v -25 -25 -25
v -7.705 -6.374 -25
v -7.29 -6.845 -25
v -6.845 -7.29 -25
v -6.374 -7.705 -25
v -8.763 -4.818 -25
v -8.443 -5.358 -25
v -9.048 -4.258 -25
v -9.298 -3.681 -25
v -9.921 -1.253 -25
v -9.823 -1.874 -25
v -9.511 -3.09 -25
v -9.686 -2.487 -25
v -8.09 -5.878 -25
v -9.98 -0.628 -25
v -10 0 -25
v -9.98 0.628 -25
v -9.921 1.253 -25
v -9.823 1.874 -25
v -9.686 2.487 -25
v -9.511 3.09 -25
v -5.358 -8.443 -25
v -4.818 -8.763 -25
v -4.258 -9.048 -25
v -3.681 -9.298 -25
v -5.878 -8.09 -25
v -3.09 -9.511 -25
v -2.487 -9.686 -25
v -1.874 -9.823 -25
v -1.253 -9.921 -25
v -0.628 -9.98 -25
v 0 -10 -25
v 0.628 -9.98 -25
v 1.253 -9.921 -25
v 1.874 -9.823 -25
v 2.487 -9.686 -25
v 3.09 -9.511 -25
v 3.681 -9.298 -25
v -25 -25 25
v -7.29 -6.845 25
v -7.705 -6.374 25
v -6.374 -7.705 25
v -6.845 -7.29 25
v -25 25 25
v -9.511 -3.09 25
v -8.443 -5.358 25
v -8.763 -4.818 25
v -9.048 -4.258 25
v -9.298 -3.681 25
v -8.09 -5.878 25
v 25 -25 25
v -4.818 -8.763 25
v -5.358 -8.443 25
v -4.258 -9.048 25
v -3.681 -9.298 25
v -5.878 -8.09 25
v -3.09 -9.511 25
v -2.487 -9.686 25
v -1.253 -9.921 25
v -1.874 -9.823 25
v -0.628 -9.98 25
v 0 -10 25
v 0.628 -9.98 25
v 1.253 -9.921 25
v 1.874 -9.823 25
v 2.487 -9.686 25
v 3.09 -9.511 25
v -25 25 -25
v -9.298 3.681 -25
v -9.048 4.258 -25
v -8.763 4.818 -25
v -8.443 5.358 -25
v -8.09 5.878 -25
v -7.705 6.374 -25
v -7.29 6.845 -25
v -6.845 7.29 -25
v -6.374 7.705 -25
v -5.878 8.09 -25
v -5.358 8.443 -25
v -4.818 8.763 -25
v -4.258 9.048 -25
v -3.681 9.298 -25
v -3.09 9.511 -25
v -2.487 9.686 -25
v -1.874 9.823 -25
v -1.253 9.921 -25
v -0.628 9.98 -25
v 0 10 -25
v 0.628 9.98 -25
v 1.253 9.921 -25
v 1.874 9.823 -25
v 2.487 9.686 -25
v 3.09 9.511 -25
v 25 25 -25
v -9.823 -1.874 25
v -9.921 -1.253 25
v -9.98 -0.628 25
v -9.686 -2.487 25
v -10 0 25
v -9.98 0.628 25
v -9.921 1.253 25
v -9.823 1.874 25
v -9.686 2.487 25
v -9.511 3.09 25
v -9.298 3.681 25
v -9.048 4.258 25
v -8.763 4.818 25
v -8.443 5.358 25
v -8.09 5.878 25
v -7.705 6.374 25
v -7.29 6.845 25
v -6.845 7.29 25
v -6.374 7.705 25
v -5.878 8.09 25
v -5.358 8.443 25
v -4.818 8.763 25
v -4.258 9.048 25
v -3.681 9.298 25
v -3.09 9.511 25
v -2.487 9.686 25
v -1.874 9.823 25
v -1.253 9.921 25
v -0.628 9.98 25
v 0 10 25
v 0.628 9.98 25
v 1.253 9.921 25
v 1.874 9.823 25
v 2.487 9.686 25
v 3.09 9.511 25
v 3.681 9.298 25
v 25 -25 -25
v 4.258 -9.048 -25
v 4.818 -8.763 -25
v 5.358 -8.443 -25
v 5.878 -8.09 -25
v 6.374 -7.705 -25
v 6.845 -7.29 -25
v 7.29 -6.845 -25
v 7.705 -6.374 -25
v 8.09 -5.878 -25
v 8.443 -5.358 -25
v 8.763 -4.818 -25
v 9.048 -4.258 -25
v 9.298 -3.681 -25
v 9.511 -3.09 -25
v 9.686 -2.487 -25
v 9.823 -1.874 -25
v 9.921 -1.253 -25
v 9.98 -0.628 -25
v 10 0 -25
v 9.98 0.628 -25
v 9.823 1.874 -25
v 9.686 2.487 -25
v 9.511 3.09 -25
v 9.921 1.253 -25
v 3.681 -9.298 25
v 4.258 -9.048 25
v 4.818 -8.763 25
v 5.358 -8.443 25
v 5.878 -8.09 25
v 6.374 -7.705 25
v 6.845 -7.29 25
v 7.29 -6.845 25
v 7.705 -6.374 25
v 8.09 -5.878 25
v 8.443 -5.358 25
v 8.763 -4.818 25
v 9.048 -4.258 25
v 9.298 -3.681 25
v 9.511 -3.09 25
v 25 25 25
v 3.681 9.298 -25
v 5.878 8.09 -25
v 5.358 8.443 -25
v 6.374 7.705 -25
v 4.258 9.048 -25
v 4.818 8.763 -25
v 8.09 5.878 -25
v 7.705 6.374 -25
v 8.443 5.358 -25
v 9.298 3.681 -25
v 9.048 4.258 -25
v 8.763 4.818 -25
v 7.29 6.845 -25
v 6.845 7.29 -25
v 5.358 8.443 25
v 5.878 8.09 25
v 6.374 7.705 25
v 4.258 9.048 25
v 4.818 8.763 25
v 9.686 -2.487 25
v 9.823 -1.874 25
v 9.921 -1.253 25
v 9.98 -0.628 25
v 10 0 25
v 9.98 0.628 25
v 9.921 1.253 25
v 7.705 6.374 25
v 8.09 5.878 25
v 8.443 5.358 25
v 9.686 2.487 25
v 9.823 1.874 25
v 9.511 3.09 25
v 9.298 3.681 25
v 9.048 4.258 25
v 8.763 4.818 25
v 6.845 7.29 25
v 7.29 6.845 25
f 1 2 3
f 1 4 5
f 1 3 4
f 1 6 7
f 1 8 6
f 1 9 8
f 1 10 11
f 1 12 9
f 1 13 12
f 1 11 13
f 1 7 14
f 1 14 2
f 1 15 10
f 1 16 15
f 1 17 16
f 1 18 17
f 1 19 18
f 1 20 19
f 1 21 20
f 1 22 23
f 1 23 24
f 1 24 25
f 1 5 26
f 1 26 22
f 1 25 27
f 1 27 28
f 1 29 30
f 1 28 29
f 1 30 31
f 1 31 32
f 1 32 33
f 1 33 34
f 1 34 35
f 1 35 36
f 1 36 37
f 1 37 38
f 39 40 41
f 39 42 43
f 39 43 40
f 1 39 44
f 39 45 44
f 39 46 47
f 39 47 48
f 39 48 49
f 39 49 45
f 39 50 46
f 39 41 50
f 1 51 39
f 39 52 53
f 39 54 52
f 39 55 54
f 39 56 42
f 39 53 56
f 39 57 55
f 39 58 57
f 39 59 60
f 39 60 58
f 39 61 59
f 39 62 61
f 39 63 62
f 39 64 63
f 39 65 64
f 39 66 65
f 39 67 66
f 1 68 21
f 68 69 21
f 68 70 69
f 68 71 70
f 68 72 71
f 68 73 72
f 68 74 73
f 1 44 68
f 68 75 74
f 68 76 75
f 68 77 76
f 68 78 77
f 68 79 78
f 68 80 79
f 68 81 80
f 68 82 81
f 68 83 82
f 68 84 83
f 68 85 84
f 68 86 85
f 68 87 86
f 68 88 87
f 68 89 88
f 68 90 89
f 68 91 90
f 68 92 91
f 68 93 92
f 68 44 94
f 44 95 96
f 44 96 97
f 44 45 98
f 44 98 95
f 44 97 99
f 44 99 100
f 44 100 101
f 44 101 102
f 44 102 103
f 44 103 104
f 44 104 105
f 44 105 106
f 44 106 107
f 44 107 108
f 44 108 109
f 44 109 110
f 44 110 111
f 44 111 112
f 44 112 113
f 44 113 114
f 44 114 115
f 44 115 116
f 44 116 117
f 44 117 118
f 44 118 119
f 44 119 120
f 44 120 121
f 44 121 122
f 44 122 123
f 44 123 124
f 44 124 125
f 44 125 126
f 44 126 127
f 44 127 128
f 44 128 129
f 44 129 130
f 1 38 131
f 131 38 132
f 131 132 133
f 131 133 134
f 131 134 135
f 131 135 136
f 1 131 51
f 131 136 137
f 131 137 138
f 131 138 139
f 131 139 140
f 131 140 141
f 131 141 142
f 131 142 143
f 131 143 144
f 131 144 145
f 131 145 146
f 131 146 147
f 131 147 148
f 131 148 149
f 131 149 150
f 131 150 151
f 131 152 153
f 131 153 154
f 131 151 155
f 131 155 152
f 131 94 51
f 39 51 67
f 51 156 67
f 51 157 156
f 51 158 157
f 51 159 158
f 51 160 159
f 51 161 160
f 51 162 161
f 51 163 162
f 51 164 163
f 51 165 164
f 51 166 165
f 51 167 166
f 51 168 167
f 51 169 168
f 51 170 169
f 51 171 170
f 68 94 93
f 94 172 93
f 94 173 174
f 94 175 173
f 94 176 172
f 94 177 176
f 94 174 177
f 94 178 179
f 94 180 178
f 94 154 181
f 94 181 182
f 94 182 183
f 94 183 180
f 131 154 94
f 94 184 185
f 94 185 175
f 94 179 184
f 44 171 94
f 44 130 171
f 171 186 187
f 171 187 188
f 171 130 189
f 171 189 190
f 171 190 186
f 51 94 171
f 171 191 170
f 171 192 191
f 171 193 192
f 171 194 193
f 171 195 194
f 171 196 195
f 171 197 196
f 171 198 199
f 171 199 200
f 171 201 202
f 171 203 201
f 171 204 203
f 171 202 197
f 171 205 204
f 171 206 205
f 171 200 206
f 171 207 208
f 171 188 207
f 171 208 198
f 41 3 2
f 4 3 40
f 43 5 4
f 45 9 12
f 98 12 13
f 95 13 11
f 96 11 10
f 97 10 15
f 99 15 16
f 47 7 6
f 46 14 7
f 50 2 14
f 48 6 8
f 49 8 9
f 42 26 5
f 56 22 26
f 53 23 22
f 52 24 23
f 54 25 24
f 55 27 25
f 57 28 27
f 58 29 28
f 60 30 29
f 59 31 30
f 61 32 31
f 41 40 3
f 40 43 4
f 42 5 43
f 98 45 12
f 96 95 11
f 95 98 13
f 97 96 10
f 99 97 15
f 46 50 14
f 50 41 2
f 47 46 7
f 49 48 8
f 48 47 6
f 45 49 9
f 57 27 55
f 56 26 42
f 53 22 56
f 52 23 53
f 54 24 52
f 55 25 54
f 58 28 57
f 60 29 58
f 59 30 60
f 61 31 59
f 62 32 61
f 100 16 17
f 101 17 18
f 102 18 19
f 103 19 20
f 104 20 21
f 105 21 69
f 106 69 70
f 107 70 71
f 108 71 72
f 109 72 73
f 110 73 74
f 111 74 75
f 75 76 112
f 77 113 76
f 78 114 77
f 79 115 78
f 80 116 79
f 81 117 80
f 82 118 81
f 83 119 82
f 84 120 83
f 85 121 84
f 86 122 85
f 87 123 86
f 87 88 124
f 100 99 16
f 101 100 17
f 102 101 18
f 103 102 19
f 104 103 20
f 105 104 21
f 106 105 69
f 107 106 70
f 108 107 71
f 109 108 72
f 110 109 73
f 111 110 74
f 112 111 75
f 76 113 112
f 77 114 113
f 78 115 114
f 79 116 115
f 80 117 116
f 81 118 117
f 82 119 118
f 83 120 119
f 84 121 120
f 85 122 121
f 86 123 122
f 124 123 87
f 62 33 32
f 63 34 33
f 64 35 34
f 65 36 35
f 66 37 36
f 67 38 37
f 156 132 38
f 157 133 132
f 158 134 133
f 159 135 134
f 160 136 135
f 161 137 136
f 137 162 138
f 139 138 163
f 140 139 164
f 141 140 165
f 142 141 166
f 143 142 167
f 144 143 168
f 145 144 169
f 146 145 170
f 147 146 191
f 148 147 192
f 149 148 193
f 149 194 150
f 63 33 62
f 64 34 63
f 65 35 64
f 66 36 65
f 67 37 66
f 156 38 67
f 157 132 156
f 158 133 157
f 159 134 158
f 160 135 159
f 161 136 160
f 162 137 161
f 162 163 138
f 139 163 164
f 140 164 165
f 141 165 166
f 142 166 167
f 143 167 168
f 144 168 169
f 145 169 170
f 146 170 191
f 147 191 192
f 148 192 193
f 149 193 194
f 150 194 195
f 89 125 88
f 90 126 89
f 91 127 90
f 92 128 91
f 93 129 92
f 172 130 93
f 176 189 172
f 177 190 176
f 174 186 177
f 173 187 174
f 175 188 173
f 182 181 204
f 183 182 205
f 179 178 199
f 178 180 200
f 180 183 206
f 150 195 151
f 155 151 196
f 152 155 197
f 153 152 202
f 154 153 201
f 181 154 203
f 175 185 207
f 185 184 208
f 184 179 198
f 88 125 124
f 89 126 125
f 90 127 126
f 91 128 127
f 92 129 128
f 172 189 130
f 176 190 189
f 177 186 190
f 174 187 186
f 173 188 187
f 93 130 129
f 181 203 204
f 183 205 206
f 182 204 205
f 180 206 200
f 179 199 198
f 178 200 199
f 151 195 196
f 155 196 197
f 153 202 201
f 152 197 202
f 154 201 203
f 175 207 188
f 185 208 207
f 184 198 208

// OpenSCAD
$fn = 100;

difference() {
    cube([50, 50, 50], center = true);
    cylinder(d = 20, h = 60, center = true);
}
